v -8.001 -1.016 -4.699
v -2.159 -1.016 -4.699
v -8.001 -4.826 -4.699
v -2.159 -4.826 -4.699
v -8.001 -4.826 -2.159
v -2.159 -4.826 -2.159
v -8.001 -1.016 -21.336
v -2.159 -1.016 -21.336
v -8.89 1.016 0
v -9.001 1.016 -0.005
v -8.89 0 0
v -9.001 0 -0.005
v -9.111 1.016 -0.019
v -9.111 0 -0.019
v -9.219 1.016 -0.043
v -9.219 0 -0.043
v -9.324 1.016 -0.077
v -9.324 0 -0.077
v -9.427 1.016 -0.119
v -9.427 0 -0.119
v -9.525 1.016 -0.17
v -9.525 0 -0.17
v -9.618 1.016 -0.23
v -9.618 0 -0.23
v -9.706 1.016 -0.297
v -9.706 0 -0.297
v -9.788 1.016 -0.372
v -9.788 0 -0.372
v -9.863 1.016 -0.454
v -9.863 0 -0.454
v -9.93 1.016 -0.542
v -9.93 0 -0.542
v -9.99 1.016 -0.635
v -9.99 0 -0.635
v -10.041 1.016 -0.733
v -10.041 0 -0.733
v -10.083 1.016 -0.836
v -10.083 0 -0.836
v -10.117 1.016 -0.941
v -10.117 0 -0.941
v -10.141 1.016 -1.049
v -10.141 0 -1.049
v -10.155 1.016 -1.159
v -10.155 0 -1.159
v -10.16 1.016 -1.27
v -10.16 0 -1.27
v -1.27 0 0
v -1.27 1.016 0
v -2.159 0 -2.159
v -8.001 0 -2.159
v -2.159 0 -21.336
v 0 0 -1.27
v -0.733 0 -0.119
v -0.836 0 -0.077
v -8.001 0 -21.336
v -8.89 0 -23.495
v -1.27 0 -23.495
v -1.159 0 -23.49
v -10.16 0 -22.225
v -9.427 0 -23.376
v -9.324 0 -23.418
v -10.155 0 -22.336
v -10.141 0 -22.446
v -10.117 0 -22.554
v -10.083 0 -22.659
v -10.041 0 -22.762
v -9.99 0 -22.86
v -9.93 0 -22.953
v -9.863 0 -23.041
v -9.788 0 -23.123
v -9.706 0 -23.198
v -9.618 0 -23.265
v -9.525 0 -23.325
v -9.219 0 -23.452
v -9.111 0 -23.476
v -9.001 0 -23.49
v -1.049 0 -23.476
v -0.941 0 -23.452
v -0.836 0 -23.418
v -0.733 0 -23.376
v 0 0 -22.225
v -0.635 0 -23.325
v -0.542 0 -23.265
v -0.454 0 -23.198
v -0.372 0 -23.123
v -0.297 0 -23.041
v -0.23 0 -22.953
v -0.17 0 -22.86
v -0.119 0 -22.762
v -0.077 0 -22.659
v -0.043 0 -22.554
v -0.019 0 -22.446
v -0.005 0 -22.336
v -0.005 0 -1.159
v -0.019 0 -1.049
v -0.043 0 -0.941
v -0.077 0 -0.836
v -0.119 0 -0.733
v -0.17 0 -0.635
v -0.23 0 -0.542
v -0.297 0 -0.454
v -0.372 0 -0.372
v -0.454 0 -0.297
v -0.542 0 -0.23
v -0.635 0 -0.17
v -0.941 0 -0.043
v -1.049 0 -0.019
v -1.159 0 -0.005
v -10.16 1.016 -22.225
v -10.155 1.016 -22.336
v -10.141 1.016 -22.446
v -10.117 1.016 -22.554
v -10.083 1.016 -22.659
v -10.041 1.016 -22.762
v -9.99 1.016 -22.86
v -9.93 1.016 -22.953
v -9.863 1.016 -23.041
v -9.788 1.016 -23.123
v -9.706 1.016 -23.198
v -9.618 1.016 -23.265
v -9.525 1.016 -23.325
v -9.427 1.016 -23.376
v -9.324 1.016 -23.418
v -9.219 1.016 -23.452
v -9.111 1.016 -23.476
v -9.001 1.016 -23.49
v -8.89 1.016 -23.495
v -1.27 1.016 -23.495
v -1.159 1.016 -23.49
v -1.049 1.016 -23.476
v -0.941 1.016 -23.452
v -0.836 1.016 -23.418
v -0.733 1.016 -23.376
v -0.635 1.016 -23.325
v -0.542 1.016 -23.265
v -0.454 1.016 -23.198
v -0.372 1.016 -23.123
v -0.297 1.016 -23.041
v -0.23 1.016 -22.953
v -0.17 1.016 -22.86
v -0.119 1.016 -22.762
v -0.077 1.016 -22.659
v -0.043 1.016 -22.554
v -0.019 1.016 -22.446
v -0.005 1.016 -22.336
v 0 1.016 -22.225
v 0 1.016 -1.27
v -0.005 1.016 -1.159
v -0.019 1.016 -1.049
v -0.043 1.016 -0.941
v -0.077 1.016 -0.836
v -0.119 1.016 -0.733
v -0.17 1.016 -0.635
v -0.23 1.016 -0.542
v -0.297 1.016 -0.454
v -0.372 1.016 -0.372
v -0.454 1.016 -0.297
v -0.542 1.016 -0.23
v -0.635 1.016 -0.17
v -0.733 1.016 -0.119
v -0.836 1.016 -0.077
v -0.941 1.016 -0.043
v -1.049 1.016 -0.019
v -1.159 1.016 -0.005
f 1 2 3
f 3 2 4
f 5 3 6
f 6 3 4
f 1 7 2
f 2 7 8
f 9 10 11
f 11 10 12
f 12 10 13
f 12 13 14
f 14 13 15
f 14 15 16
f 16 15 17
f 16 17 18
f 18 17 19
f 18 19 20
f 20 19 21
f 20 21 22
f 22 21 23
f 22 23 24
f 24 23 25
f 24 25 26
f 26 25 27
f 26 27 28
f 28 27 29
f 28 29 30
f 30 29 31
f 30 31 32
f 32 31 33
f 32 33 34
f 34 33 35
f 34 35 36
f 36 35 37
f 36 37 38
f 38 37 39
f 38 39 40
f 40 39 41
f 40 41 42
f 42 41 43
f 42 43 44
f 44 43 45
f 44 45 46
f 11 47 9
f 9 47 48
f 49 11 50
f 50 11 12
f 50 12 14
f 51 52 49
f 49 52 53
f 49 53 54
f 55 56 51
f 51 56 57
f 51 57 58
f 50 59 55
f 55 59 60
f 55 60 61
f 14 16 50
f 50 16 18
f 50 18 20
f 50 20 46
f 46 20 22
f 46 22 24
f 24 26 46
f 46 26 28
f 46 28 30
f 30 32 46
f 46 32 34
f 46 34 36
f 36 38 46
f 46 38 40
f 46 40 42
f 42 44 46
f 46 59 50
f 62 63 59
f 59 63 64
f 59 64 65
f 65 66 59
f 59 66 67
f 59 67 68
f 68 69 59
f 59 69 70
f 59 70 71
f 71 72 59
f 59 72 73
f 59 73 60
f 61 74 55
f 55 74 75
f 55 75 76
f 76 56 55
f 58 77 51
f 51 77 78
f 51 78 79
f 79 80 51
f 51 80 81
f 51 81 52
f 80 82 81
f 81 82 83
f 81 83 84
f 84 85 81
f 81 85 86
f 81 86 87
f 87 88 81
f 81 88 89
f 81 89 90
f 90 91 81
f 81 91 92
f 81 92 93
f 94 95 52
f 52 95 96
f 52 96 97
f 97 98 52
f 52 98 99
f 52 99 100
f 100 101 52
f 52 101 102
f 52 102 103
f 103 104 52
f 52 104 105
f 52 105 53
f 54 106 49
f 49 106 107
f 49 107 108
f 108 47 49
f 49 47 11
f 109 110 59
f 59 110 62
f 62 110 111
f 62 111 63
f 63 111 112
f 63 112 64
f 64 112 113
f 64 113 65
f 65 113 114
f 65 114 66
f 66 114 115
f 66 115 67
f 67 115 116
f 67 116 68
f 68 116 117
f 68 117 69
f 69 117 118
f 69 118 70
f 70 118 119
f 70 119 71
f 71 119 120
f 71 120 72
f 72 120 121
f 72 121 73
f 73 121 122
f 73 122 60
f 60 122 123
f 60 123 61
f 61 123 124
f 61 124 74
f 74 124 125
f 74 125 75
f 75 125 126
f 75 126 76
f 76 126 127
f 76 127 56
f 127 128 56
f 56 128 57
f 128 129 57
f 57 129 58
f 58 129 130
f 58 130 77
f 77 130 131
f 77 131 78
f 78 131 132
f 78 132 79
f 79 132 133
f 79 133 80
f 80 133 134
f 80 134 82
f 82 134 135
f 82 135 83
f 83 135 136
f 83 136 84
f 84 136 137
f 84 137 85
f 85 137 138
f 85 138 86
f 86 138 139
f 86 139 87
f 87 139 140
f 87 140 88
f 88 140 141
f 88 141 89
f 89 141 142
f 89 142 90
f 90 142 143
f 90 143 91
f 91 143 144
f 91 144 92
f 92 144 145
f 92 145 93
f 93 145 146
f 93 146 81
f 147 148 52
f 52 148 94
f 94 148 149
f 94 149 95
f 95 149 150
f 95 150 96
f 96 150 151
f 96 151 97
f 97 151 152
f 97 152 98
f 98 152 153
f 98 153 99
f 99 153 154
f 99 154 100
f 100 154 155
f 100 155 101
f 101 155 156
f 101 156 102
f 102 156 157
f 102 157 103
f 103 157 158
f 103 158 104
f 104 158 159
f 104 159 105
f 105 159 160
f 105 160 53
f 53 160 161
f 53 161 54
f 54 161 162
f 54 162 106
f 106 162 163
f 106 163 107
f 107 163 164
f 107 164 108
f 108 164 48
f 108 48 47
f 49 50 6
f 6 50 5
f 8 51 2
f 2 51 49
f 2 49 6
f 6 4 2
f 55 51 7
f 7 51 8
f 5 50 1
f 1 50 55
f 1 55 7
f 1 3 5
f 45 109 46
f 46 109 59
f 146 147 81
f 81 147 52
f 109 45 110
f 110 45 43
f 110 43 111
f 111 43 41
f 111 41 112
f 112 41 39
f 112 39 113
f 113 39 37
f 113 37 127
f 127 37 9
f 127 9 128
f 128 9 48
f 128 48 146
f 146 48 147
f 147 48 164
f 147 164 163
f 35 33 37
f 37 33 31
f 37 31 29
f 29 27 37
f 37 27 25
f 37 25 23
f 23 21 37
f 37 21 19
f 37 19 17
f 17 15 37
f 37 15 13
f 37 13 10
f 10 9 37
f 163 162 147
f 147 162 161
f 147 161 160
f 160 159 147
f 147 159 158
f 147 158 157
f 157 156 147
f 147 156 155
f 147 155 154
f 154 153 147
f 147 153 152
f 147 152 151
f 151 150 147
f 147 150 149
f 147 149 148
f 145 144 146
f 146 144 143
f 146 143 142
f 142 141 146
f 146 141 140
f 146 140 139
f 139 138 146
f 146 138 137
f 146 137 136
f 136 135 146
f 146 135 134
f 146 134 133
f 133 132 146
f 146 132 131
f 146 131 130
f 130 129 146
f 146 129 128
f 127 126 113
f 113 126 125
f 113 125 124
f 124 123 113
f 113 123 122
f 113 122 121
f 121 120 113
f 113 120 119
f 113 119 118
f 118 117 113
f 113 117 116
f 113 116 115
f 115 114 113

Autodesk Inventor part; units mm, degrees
ref_plane "YZ Plane" through (0, 0, 0) normal (1, 0, 0) x (0, 1, 0)
ref_plane "XZ Plane" through (0, 0, 0) normal (0, 1, 0) x (-1, 0, 0)
ref_plane "XY Plane" through (0, 0, 0) normal (0, 0, 1) x (1, 0, 0)
sketch "Sketch1" plane through (0, 0, 0) normal (0, 1, 0) x (-1, 0, 0)
  line L0 (0, 0) -> (10.16, 0)
  line L1 (10.16, 0) -> (10.16, -23.495)
  line L2 (10.16, -23.495) -> (0, -23.495)
  line L3 (0, -23.495) -> (0, 0)
  line L4 (8.001, -21.336) -> (8.001, -2.159)
  line L5 (8.001, -2.159) -> (2.159, -2.159)
  line L6 (2.159, -2.159) -> (2.159, -21.336)
  line L7 (2.159, -21.336) -> (8.001, -21.336)
  dimension "d0" = 23.495
  dimension "d1" = 10.16
  dimension "d2" = 2.159
extrude "Extrusion1" add sketch "Sketch1" along normal blind 1.016 contours L0 L1 L2 L3 | L7 L6 L5 L4
extrude "Extrusion2" add sketch "Sketch1" against normal blind 1.016 contours L7 L6 L5 L4
fillet "Fillet1" radius 1.27 4 edges at (0, 0.508, 0) (0, 0.508, -23.495) (-10.16, 0.508, -23.495) (-10.16, 0.508, 0)
sketch "Sketch2" plane through (0, -1.016, 0) normal (0, -1, 0) x (1, 0, 0)
  line L0 (-8.001, -2.159) -> (-8.001, -21.336) projected
  line L1 (-8.001, -21.336) -> (-2.159, -21.336) projected
  line L2 (-2.159, -21.336) -> (-2.159, -2.159) projected
  line L3 (-2.159, -2.159) -> (-8.001, -2.159) projected
  line L4 (-2.159, -4.699) -> (-8.001, -4.699)
  point P0 (0, 0)
  dimension "d8" = 2.54
extrude "Extrusion3" add sketch "Sketch2" along normal blind 3.81 contours L3 L2 L4 L0
properties part number "HallEffectSensorCaseLid" material "ABS Plastic"
